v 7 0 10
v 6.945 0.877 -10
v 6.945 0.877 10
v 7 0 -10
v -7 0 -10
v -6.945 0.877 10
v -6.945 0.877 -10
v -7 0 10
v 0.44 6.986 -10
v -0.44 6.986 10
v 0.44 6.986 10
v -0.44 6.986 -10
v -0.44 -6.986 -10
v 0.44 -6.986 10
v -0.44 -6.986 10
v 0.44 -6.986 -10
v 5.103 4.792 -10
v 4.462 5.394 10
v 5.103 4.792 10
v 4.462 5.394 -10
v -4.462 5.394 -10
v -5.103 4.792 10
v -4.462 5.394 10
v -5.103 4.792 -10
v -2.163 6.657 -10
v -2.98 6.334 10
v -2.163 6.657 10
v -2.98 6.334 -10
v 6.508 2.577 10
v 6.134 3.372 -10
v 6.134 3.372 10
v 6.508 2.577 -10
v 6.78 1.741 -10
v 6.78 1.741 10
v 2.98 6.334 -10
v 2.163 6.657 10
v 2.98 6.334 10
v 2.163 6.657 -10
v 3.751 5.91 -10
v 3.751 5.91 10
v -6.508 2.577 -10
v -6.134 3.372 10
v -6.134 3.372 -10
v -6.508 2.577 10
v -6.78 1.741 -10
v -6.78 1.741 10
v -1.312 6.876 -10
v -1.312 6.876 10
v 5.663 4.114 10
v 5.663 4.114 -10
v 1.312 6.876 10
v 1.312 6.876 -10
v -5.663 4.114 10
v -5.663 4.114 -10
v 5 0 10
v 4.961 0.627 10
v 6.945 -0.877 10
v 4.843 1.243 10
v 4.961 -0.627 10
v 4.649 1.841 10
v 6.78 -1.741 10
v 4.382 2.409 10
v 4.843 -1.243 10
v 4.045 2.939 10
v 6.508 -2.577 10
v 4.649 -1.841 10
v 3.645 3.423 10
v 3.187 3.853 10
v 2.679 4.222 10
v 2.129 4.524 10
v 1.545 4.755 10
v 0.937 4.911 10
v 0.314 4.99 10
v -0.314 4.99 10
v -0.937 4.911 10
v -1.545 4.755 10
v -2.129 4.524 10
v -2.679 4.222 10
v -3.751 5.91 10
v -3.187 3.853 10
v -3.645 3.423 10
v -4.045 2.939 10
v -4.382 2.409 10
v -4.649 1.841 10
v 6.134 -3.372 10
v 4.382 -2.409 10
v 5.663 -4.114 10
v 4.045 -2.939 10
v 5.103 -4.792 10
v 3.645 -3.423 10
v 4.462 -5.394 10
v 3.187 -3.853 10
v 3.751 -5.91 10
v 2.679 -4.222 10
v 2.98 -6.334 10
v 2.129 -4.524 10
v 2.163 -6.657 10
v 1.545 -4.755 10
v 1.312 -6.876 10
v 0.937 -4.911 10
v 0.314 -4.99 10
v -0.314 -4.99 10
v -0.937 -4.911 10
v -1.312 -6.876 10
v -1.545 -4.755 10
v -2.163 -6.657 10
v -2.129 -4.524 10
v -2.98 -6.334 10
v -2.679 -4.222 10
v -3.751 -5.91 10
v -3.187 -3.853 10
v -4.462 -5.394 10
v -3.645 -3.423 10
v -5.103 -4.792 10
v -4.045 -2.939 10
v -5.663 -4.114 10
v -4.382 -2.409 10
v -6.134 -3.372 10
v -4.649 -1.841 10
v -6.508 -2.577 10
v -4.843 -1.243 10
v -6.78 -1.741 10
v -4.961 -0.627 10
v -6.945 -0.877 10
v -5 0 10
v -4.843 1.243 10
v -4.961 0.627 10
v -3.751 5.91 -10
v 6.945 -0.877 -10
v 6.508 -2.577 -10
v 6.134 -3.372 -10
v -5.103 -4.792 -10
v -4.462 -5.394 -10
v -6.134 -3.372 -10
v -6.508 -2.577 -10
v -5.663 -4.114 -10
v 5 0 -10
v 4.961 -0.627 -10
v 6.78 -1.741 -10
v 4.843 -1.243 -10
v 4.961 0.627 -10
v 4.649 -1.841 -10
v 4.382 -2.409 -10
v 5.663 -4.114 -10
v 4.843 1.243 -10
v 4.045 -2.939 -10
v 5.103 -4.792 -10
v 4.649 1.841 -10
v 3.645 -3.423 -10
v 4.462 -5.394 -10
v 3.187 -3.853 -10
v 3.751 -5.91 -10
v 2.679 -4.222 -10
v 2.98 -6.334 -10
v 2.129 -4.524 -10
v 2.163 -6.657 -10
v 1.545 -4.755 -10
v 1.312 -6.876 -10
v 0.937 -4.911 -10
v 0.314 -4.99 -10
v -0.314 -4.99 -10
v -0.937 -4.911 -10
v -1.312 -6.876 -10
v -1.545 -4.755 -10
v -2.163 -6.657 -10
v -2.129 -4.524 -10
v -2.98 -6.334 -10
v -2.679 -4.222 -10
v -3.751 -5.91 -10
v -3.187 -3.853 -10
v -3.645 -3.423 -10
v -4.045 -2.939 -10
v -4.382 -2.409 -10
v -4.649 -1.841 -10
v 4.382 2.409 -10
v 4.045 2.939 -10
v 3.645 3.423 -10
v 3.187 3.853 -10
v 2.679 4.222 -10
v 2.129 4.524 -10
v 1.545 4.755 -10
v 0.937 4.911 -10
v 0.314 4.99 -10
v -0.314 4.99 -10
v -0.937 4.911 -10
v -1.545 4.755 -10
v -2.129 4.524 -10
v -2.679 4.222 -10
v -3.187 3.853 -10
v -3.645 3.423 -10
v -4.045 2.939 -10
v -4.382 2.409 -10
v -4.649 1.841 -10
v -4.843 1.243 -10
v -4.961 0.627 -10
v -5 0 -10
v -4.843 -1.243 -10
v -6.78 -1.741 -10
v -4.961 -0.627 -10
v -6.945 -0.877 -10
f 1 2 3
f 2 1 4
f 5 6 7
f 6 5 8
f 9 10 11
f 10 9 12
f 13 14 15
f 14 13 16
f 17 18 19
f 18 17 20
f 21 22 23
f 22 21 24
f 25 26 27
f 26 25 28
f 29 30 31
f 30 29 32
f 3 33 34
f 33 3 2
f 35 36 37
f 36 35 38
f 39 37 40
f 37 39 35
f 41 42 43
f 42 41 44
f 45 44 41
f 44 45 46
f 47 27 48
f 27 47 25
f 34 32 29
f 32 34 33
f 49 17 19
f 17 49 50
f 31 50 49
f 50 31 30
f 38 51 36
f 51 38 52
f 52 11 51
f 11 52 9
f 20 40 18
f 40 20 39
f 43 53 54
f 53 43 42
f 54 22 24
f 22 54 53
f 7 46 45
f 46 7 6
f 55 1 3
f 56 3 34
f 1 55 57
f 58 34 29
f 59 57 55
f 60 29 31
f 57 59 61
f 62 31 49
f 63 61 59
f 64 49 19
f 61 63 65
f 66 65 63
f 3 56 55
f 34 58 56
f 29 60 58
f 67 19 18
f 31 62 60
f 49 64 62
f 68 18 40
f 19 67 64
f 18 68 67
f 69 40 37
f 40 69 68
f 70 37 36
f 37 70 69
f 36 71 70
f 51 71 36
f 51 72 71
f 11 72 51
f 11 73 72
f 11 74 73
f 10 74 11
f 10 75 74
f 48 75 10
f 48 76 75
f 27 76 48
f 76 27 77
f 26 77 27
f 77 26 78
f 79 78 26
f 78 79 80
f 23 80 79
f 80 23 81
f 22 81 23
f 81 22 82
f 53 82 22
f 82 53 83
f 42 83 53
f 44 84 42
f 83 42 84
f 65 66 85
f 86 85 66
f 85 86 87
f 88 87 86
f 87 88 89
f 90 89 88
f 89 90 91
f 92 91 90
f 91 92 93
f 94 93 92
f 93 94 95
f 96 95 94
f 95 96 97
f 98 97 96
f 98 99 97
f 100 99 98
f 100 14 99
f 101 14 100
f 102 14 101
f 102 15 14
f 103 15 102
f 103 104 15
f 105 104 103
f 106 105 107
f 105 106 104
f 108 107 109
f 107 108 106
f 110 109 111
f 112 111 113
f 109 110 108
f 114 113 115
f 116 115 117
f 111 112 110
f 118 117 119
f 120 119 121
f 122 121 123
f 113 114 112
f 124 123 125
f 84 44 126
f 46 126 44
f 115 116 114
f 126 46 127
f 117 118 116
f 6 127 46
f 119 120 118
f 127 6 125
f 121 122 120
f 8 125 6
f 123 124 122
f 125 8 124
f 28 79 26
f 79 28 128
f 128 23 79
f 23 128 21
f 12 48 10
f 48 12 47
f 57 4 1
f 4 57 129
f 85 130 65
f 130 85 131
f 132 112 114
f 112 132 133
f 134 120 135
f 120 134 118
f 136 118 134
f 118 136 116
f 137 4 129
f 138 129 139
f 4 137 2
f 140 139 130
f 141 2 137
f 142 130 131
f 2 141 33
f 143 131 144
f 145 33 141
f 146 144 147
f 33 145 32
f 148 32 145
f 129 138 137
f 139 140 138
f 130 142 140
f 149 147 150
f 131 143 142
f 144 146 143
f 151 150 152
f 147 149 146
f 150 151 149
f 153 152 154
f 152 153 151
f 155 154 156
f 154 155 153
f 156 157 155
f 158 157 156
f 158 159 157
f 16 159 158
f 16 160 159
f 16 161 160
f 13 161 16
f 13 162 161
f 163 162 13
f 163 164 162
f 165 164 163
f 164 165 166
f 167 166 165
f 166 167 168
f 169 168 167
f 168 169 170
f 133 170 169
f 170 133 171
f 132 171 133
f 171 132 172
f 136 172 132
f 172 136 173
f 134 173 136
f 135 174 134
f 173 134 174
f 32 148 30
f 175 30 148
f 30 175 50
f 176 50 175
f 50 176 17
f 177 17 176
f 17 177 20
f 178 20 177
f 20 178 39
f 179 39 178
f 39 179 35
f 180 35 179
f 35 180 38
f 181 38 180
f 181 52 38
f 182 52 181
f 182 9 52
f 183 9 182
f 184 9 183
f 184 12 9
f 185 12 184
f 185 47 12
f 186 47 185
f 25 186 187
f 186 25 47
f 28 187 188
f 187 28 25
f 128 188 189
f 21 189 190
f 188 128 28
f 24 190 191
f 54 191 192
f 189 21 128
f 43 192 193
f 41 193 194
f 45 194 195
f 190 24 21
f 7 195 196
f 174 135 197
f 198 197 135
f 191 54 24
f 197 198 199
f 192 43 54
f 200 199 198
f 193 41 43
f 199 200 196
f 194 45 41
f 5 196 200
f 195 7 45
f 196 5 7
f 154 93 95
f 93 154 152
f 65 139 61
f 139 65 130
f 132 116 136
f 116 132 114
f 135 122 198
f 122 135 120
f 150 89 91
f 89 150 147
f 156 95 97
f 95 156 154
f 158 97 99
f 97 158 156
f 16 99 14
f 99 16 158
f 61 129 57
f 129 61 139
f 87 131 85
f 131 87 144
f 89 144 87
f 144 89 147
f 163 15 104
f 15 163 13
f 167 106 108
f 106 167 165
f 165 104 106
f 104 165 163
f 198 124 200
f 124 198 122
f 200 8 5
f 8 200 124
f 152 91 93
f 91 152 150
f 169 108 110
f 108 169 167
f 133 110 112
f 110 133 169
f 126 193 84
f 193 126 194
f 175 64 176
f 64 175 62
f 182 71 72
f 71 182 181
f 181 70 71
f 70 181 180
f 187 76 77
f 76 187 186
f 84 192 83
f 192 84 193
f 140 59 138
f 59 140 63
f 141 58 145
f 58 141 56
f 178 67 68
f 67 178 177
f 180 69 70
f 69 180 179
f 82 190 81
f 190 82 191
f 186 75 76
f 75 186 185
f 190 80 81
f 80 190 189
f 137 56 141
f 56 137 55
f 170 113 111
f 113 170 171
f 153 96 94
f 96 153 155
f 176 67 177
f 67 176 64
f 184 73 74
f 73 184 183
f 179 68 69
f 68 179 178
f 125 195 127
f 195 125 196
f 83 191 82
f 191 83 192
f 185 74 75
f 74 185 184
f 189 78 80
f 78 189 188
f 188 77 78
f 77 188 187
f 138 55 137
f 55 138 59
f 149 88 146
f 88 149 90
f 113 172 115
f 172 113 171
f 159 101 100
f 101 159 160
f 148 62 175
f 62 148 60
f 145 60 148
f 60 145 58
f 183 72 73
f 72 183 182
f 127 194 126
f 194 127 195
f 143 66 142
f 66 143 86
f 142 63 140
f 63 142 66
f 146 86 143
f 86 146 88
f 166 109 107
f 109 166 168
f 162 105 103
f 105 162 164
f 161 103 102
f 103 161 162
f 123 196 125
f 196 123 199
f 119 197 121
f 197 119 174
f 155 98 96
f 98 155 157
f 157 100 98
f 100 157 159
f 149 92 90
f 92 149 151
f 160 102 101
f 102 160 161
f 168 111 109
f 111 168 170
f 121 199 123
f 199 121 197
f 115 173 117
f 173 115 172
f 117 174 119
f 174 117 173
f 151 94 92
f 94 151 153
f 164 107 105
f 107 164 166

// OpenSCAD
$fn = 50;


difference() {
	union() {
		translate(v = [0, 0, -10.0000000000]) {
			cylinder(h = 20, r = 7.0000000000);
		}
	}
	union() {
		translate(v = [0, 0, -100.0000000000]) {
			cylinder(h = 200, r = 5);
		}
	}
}
